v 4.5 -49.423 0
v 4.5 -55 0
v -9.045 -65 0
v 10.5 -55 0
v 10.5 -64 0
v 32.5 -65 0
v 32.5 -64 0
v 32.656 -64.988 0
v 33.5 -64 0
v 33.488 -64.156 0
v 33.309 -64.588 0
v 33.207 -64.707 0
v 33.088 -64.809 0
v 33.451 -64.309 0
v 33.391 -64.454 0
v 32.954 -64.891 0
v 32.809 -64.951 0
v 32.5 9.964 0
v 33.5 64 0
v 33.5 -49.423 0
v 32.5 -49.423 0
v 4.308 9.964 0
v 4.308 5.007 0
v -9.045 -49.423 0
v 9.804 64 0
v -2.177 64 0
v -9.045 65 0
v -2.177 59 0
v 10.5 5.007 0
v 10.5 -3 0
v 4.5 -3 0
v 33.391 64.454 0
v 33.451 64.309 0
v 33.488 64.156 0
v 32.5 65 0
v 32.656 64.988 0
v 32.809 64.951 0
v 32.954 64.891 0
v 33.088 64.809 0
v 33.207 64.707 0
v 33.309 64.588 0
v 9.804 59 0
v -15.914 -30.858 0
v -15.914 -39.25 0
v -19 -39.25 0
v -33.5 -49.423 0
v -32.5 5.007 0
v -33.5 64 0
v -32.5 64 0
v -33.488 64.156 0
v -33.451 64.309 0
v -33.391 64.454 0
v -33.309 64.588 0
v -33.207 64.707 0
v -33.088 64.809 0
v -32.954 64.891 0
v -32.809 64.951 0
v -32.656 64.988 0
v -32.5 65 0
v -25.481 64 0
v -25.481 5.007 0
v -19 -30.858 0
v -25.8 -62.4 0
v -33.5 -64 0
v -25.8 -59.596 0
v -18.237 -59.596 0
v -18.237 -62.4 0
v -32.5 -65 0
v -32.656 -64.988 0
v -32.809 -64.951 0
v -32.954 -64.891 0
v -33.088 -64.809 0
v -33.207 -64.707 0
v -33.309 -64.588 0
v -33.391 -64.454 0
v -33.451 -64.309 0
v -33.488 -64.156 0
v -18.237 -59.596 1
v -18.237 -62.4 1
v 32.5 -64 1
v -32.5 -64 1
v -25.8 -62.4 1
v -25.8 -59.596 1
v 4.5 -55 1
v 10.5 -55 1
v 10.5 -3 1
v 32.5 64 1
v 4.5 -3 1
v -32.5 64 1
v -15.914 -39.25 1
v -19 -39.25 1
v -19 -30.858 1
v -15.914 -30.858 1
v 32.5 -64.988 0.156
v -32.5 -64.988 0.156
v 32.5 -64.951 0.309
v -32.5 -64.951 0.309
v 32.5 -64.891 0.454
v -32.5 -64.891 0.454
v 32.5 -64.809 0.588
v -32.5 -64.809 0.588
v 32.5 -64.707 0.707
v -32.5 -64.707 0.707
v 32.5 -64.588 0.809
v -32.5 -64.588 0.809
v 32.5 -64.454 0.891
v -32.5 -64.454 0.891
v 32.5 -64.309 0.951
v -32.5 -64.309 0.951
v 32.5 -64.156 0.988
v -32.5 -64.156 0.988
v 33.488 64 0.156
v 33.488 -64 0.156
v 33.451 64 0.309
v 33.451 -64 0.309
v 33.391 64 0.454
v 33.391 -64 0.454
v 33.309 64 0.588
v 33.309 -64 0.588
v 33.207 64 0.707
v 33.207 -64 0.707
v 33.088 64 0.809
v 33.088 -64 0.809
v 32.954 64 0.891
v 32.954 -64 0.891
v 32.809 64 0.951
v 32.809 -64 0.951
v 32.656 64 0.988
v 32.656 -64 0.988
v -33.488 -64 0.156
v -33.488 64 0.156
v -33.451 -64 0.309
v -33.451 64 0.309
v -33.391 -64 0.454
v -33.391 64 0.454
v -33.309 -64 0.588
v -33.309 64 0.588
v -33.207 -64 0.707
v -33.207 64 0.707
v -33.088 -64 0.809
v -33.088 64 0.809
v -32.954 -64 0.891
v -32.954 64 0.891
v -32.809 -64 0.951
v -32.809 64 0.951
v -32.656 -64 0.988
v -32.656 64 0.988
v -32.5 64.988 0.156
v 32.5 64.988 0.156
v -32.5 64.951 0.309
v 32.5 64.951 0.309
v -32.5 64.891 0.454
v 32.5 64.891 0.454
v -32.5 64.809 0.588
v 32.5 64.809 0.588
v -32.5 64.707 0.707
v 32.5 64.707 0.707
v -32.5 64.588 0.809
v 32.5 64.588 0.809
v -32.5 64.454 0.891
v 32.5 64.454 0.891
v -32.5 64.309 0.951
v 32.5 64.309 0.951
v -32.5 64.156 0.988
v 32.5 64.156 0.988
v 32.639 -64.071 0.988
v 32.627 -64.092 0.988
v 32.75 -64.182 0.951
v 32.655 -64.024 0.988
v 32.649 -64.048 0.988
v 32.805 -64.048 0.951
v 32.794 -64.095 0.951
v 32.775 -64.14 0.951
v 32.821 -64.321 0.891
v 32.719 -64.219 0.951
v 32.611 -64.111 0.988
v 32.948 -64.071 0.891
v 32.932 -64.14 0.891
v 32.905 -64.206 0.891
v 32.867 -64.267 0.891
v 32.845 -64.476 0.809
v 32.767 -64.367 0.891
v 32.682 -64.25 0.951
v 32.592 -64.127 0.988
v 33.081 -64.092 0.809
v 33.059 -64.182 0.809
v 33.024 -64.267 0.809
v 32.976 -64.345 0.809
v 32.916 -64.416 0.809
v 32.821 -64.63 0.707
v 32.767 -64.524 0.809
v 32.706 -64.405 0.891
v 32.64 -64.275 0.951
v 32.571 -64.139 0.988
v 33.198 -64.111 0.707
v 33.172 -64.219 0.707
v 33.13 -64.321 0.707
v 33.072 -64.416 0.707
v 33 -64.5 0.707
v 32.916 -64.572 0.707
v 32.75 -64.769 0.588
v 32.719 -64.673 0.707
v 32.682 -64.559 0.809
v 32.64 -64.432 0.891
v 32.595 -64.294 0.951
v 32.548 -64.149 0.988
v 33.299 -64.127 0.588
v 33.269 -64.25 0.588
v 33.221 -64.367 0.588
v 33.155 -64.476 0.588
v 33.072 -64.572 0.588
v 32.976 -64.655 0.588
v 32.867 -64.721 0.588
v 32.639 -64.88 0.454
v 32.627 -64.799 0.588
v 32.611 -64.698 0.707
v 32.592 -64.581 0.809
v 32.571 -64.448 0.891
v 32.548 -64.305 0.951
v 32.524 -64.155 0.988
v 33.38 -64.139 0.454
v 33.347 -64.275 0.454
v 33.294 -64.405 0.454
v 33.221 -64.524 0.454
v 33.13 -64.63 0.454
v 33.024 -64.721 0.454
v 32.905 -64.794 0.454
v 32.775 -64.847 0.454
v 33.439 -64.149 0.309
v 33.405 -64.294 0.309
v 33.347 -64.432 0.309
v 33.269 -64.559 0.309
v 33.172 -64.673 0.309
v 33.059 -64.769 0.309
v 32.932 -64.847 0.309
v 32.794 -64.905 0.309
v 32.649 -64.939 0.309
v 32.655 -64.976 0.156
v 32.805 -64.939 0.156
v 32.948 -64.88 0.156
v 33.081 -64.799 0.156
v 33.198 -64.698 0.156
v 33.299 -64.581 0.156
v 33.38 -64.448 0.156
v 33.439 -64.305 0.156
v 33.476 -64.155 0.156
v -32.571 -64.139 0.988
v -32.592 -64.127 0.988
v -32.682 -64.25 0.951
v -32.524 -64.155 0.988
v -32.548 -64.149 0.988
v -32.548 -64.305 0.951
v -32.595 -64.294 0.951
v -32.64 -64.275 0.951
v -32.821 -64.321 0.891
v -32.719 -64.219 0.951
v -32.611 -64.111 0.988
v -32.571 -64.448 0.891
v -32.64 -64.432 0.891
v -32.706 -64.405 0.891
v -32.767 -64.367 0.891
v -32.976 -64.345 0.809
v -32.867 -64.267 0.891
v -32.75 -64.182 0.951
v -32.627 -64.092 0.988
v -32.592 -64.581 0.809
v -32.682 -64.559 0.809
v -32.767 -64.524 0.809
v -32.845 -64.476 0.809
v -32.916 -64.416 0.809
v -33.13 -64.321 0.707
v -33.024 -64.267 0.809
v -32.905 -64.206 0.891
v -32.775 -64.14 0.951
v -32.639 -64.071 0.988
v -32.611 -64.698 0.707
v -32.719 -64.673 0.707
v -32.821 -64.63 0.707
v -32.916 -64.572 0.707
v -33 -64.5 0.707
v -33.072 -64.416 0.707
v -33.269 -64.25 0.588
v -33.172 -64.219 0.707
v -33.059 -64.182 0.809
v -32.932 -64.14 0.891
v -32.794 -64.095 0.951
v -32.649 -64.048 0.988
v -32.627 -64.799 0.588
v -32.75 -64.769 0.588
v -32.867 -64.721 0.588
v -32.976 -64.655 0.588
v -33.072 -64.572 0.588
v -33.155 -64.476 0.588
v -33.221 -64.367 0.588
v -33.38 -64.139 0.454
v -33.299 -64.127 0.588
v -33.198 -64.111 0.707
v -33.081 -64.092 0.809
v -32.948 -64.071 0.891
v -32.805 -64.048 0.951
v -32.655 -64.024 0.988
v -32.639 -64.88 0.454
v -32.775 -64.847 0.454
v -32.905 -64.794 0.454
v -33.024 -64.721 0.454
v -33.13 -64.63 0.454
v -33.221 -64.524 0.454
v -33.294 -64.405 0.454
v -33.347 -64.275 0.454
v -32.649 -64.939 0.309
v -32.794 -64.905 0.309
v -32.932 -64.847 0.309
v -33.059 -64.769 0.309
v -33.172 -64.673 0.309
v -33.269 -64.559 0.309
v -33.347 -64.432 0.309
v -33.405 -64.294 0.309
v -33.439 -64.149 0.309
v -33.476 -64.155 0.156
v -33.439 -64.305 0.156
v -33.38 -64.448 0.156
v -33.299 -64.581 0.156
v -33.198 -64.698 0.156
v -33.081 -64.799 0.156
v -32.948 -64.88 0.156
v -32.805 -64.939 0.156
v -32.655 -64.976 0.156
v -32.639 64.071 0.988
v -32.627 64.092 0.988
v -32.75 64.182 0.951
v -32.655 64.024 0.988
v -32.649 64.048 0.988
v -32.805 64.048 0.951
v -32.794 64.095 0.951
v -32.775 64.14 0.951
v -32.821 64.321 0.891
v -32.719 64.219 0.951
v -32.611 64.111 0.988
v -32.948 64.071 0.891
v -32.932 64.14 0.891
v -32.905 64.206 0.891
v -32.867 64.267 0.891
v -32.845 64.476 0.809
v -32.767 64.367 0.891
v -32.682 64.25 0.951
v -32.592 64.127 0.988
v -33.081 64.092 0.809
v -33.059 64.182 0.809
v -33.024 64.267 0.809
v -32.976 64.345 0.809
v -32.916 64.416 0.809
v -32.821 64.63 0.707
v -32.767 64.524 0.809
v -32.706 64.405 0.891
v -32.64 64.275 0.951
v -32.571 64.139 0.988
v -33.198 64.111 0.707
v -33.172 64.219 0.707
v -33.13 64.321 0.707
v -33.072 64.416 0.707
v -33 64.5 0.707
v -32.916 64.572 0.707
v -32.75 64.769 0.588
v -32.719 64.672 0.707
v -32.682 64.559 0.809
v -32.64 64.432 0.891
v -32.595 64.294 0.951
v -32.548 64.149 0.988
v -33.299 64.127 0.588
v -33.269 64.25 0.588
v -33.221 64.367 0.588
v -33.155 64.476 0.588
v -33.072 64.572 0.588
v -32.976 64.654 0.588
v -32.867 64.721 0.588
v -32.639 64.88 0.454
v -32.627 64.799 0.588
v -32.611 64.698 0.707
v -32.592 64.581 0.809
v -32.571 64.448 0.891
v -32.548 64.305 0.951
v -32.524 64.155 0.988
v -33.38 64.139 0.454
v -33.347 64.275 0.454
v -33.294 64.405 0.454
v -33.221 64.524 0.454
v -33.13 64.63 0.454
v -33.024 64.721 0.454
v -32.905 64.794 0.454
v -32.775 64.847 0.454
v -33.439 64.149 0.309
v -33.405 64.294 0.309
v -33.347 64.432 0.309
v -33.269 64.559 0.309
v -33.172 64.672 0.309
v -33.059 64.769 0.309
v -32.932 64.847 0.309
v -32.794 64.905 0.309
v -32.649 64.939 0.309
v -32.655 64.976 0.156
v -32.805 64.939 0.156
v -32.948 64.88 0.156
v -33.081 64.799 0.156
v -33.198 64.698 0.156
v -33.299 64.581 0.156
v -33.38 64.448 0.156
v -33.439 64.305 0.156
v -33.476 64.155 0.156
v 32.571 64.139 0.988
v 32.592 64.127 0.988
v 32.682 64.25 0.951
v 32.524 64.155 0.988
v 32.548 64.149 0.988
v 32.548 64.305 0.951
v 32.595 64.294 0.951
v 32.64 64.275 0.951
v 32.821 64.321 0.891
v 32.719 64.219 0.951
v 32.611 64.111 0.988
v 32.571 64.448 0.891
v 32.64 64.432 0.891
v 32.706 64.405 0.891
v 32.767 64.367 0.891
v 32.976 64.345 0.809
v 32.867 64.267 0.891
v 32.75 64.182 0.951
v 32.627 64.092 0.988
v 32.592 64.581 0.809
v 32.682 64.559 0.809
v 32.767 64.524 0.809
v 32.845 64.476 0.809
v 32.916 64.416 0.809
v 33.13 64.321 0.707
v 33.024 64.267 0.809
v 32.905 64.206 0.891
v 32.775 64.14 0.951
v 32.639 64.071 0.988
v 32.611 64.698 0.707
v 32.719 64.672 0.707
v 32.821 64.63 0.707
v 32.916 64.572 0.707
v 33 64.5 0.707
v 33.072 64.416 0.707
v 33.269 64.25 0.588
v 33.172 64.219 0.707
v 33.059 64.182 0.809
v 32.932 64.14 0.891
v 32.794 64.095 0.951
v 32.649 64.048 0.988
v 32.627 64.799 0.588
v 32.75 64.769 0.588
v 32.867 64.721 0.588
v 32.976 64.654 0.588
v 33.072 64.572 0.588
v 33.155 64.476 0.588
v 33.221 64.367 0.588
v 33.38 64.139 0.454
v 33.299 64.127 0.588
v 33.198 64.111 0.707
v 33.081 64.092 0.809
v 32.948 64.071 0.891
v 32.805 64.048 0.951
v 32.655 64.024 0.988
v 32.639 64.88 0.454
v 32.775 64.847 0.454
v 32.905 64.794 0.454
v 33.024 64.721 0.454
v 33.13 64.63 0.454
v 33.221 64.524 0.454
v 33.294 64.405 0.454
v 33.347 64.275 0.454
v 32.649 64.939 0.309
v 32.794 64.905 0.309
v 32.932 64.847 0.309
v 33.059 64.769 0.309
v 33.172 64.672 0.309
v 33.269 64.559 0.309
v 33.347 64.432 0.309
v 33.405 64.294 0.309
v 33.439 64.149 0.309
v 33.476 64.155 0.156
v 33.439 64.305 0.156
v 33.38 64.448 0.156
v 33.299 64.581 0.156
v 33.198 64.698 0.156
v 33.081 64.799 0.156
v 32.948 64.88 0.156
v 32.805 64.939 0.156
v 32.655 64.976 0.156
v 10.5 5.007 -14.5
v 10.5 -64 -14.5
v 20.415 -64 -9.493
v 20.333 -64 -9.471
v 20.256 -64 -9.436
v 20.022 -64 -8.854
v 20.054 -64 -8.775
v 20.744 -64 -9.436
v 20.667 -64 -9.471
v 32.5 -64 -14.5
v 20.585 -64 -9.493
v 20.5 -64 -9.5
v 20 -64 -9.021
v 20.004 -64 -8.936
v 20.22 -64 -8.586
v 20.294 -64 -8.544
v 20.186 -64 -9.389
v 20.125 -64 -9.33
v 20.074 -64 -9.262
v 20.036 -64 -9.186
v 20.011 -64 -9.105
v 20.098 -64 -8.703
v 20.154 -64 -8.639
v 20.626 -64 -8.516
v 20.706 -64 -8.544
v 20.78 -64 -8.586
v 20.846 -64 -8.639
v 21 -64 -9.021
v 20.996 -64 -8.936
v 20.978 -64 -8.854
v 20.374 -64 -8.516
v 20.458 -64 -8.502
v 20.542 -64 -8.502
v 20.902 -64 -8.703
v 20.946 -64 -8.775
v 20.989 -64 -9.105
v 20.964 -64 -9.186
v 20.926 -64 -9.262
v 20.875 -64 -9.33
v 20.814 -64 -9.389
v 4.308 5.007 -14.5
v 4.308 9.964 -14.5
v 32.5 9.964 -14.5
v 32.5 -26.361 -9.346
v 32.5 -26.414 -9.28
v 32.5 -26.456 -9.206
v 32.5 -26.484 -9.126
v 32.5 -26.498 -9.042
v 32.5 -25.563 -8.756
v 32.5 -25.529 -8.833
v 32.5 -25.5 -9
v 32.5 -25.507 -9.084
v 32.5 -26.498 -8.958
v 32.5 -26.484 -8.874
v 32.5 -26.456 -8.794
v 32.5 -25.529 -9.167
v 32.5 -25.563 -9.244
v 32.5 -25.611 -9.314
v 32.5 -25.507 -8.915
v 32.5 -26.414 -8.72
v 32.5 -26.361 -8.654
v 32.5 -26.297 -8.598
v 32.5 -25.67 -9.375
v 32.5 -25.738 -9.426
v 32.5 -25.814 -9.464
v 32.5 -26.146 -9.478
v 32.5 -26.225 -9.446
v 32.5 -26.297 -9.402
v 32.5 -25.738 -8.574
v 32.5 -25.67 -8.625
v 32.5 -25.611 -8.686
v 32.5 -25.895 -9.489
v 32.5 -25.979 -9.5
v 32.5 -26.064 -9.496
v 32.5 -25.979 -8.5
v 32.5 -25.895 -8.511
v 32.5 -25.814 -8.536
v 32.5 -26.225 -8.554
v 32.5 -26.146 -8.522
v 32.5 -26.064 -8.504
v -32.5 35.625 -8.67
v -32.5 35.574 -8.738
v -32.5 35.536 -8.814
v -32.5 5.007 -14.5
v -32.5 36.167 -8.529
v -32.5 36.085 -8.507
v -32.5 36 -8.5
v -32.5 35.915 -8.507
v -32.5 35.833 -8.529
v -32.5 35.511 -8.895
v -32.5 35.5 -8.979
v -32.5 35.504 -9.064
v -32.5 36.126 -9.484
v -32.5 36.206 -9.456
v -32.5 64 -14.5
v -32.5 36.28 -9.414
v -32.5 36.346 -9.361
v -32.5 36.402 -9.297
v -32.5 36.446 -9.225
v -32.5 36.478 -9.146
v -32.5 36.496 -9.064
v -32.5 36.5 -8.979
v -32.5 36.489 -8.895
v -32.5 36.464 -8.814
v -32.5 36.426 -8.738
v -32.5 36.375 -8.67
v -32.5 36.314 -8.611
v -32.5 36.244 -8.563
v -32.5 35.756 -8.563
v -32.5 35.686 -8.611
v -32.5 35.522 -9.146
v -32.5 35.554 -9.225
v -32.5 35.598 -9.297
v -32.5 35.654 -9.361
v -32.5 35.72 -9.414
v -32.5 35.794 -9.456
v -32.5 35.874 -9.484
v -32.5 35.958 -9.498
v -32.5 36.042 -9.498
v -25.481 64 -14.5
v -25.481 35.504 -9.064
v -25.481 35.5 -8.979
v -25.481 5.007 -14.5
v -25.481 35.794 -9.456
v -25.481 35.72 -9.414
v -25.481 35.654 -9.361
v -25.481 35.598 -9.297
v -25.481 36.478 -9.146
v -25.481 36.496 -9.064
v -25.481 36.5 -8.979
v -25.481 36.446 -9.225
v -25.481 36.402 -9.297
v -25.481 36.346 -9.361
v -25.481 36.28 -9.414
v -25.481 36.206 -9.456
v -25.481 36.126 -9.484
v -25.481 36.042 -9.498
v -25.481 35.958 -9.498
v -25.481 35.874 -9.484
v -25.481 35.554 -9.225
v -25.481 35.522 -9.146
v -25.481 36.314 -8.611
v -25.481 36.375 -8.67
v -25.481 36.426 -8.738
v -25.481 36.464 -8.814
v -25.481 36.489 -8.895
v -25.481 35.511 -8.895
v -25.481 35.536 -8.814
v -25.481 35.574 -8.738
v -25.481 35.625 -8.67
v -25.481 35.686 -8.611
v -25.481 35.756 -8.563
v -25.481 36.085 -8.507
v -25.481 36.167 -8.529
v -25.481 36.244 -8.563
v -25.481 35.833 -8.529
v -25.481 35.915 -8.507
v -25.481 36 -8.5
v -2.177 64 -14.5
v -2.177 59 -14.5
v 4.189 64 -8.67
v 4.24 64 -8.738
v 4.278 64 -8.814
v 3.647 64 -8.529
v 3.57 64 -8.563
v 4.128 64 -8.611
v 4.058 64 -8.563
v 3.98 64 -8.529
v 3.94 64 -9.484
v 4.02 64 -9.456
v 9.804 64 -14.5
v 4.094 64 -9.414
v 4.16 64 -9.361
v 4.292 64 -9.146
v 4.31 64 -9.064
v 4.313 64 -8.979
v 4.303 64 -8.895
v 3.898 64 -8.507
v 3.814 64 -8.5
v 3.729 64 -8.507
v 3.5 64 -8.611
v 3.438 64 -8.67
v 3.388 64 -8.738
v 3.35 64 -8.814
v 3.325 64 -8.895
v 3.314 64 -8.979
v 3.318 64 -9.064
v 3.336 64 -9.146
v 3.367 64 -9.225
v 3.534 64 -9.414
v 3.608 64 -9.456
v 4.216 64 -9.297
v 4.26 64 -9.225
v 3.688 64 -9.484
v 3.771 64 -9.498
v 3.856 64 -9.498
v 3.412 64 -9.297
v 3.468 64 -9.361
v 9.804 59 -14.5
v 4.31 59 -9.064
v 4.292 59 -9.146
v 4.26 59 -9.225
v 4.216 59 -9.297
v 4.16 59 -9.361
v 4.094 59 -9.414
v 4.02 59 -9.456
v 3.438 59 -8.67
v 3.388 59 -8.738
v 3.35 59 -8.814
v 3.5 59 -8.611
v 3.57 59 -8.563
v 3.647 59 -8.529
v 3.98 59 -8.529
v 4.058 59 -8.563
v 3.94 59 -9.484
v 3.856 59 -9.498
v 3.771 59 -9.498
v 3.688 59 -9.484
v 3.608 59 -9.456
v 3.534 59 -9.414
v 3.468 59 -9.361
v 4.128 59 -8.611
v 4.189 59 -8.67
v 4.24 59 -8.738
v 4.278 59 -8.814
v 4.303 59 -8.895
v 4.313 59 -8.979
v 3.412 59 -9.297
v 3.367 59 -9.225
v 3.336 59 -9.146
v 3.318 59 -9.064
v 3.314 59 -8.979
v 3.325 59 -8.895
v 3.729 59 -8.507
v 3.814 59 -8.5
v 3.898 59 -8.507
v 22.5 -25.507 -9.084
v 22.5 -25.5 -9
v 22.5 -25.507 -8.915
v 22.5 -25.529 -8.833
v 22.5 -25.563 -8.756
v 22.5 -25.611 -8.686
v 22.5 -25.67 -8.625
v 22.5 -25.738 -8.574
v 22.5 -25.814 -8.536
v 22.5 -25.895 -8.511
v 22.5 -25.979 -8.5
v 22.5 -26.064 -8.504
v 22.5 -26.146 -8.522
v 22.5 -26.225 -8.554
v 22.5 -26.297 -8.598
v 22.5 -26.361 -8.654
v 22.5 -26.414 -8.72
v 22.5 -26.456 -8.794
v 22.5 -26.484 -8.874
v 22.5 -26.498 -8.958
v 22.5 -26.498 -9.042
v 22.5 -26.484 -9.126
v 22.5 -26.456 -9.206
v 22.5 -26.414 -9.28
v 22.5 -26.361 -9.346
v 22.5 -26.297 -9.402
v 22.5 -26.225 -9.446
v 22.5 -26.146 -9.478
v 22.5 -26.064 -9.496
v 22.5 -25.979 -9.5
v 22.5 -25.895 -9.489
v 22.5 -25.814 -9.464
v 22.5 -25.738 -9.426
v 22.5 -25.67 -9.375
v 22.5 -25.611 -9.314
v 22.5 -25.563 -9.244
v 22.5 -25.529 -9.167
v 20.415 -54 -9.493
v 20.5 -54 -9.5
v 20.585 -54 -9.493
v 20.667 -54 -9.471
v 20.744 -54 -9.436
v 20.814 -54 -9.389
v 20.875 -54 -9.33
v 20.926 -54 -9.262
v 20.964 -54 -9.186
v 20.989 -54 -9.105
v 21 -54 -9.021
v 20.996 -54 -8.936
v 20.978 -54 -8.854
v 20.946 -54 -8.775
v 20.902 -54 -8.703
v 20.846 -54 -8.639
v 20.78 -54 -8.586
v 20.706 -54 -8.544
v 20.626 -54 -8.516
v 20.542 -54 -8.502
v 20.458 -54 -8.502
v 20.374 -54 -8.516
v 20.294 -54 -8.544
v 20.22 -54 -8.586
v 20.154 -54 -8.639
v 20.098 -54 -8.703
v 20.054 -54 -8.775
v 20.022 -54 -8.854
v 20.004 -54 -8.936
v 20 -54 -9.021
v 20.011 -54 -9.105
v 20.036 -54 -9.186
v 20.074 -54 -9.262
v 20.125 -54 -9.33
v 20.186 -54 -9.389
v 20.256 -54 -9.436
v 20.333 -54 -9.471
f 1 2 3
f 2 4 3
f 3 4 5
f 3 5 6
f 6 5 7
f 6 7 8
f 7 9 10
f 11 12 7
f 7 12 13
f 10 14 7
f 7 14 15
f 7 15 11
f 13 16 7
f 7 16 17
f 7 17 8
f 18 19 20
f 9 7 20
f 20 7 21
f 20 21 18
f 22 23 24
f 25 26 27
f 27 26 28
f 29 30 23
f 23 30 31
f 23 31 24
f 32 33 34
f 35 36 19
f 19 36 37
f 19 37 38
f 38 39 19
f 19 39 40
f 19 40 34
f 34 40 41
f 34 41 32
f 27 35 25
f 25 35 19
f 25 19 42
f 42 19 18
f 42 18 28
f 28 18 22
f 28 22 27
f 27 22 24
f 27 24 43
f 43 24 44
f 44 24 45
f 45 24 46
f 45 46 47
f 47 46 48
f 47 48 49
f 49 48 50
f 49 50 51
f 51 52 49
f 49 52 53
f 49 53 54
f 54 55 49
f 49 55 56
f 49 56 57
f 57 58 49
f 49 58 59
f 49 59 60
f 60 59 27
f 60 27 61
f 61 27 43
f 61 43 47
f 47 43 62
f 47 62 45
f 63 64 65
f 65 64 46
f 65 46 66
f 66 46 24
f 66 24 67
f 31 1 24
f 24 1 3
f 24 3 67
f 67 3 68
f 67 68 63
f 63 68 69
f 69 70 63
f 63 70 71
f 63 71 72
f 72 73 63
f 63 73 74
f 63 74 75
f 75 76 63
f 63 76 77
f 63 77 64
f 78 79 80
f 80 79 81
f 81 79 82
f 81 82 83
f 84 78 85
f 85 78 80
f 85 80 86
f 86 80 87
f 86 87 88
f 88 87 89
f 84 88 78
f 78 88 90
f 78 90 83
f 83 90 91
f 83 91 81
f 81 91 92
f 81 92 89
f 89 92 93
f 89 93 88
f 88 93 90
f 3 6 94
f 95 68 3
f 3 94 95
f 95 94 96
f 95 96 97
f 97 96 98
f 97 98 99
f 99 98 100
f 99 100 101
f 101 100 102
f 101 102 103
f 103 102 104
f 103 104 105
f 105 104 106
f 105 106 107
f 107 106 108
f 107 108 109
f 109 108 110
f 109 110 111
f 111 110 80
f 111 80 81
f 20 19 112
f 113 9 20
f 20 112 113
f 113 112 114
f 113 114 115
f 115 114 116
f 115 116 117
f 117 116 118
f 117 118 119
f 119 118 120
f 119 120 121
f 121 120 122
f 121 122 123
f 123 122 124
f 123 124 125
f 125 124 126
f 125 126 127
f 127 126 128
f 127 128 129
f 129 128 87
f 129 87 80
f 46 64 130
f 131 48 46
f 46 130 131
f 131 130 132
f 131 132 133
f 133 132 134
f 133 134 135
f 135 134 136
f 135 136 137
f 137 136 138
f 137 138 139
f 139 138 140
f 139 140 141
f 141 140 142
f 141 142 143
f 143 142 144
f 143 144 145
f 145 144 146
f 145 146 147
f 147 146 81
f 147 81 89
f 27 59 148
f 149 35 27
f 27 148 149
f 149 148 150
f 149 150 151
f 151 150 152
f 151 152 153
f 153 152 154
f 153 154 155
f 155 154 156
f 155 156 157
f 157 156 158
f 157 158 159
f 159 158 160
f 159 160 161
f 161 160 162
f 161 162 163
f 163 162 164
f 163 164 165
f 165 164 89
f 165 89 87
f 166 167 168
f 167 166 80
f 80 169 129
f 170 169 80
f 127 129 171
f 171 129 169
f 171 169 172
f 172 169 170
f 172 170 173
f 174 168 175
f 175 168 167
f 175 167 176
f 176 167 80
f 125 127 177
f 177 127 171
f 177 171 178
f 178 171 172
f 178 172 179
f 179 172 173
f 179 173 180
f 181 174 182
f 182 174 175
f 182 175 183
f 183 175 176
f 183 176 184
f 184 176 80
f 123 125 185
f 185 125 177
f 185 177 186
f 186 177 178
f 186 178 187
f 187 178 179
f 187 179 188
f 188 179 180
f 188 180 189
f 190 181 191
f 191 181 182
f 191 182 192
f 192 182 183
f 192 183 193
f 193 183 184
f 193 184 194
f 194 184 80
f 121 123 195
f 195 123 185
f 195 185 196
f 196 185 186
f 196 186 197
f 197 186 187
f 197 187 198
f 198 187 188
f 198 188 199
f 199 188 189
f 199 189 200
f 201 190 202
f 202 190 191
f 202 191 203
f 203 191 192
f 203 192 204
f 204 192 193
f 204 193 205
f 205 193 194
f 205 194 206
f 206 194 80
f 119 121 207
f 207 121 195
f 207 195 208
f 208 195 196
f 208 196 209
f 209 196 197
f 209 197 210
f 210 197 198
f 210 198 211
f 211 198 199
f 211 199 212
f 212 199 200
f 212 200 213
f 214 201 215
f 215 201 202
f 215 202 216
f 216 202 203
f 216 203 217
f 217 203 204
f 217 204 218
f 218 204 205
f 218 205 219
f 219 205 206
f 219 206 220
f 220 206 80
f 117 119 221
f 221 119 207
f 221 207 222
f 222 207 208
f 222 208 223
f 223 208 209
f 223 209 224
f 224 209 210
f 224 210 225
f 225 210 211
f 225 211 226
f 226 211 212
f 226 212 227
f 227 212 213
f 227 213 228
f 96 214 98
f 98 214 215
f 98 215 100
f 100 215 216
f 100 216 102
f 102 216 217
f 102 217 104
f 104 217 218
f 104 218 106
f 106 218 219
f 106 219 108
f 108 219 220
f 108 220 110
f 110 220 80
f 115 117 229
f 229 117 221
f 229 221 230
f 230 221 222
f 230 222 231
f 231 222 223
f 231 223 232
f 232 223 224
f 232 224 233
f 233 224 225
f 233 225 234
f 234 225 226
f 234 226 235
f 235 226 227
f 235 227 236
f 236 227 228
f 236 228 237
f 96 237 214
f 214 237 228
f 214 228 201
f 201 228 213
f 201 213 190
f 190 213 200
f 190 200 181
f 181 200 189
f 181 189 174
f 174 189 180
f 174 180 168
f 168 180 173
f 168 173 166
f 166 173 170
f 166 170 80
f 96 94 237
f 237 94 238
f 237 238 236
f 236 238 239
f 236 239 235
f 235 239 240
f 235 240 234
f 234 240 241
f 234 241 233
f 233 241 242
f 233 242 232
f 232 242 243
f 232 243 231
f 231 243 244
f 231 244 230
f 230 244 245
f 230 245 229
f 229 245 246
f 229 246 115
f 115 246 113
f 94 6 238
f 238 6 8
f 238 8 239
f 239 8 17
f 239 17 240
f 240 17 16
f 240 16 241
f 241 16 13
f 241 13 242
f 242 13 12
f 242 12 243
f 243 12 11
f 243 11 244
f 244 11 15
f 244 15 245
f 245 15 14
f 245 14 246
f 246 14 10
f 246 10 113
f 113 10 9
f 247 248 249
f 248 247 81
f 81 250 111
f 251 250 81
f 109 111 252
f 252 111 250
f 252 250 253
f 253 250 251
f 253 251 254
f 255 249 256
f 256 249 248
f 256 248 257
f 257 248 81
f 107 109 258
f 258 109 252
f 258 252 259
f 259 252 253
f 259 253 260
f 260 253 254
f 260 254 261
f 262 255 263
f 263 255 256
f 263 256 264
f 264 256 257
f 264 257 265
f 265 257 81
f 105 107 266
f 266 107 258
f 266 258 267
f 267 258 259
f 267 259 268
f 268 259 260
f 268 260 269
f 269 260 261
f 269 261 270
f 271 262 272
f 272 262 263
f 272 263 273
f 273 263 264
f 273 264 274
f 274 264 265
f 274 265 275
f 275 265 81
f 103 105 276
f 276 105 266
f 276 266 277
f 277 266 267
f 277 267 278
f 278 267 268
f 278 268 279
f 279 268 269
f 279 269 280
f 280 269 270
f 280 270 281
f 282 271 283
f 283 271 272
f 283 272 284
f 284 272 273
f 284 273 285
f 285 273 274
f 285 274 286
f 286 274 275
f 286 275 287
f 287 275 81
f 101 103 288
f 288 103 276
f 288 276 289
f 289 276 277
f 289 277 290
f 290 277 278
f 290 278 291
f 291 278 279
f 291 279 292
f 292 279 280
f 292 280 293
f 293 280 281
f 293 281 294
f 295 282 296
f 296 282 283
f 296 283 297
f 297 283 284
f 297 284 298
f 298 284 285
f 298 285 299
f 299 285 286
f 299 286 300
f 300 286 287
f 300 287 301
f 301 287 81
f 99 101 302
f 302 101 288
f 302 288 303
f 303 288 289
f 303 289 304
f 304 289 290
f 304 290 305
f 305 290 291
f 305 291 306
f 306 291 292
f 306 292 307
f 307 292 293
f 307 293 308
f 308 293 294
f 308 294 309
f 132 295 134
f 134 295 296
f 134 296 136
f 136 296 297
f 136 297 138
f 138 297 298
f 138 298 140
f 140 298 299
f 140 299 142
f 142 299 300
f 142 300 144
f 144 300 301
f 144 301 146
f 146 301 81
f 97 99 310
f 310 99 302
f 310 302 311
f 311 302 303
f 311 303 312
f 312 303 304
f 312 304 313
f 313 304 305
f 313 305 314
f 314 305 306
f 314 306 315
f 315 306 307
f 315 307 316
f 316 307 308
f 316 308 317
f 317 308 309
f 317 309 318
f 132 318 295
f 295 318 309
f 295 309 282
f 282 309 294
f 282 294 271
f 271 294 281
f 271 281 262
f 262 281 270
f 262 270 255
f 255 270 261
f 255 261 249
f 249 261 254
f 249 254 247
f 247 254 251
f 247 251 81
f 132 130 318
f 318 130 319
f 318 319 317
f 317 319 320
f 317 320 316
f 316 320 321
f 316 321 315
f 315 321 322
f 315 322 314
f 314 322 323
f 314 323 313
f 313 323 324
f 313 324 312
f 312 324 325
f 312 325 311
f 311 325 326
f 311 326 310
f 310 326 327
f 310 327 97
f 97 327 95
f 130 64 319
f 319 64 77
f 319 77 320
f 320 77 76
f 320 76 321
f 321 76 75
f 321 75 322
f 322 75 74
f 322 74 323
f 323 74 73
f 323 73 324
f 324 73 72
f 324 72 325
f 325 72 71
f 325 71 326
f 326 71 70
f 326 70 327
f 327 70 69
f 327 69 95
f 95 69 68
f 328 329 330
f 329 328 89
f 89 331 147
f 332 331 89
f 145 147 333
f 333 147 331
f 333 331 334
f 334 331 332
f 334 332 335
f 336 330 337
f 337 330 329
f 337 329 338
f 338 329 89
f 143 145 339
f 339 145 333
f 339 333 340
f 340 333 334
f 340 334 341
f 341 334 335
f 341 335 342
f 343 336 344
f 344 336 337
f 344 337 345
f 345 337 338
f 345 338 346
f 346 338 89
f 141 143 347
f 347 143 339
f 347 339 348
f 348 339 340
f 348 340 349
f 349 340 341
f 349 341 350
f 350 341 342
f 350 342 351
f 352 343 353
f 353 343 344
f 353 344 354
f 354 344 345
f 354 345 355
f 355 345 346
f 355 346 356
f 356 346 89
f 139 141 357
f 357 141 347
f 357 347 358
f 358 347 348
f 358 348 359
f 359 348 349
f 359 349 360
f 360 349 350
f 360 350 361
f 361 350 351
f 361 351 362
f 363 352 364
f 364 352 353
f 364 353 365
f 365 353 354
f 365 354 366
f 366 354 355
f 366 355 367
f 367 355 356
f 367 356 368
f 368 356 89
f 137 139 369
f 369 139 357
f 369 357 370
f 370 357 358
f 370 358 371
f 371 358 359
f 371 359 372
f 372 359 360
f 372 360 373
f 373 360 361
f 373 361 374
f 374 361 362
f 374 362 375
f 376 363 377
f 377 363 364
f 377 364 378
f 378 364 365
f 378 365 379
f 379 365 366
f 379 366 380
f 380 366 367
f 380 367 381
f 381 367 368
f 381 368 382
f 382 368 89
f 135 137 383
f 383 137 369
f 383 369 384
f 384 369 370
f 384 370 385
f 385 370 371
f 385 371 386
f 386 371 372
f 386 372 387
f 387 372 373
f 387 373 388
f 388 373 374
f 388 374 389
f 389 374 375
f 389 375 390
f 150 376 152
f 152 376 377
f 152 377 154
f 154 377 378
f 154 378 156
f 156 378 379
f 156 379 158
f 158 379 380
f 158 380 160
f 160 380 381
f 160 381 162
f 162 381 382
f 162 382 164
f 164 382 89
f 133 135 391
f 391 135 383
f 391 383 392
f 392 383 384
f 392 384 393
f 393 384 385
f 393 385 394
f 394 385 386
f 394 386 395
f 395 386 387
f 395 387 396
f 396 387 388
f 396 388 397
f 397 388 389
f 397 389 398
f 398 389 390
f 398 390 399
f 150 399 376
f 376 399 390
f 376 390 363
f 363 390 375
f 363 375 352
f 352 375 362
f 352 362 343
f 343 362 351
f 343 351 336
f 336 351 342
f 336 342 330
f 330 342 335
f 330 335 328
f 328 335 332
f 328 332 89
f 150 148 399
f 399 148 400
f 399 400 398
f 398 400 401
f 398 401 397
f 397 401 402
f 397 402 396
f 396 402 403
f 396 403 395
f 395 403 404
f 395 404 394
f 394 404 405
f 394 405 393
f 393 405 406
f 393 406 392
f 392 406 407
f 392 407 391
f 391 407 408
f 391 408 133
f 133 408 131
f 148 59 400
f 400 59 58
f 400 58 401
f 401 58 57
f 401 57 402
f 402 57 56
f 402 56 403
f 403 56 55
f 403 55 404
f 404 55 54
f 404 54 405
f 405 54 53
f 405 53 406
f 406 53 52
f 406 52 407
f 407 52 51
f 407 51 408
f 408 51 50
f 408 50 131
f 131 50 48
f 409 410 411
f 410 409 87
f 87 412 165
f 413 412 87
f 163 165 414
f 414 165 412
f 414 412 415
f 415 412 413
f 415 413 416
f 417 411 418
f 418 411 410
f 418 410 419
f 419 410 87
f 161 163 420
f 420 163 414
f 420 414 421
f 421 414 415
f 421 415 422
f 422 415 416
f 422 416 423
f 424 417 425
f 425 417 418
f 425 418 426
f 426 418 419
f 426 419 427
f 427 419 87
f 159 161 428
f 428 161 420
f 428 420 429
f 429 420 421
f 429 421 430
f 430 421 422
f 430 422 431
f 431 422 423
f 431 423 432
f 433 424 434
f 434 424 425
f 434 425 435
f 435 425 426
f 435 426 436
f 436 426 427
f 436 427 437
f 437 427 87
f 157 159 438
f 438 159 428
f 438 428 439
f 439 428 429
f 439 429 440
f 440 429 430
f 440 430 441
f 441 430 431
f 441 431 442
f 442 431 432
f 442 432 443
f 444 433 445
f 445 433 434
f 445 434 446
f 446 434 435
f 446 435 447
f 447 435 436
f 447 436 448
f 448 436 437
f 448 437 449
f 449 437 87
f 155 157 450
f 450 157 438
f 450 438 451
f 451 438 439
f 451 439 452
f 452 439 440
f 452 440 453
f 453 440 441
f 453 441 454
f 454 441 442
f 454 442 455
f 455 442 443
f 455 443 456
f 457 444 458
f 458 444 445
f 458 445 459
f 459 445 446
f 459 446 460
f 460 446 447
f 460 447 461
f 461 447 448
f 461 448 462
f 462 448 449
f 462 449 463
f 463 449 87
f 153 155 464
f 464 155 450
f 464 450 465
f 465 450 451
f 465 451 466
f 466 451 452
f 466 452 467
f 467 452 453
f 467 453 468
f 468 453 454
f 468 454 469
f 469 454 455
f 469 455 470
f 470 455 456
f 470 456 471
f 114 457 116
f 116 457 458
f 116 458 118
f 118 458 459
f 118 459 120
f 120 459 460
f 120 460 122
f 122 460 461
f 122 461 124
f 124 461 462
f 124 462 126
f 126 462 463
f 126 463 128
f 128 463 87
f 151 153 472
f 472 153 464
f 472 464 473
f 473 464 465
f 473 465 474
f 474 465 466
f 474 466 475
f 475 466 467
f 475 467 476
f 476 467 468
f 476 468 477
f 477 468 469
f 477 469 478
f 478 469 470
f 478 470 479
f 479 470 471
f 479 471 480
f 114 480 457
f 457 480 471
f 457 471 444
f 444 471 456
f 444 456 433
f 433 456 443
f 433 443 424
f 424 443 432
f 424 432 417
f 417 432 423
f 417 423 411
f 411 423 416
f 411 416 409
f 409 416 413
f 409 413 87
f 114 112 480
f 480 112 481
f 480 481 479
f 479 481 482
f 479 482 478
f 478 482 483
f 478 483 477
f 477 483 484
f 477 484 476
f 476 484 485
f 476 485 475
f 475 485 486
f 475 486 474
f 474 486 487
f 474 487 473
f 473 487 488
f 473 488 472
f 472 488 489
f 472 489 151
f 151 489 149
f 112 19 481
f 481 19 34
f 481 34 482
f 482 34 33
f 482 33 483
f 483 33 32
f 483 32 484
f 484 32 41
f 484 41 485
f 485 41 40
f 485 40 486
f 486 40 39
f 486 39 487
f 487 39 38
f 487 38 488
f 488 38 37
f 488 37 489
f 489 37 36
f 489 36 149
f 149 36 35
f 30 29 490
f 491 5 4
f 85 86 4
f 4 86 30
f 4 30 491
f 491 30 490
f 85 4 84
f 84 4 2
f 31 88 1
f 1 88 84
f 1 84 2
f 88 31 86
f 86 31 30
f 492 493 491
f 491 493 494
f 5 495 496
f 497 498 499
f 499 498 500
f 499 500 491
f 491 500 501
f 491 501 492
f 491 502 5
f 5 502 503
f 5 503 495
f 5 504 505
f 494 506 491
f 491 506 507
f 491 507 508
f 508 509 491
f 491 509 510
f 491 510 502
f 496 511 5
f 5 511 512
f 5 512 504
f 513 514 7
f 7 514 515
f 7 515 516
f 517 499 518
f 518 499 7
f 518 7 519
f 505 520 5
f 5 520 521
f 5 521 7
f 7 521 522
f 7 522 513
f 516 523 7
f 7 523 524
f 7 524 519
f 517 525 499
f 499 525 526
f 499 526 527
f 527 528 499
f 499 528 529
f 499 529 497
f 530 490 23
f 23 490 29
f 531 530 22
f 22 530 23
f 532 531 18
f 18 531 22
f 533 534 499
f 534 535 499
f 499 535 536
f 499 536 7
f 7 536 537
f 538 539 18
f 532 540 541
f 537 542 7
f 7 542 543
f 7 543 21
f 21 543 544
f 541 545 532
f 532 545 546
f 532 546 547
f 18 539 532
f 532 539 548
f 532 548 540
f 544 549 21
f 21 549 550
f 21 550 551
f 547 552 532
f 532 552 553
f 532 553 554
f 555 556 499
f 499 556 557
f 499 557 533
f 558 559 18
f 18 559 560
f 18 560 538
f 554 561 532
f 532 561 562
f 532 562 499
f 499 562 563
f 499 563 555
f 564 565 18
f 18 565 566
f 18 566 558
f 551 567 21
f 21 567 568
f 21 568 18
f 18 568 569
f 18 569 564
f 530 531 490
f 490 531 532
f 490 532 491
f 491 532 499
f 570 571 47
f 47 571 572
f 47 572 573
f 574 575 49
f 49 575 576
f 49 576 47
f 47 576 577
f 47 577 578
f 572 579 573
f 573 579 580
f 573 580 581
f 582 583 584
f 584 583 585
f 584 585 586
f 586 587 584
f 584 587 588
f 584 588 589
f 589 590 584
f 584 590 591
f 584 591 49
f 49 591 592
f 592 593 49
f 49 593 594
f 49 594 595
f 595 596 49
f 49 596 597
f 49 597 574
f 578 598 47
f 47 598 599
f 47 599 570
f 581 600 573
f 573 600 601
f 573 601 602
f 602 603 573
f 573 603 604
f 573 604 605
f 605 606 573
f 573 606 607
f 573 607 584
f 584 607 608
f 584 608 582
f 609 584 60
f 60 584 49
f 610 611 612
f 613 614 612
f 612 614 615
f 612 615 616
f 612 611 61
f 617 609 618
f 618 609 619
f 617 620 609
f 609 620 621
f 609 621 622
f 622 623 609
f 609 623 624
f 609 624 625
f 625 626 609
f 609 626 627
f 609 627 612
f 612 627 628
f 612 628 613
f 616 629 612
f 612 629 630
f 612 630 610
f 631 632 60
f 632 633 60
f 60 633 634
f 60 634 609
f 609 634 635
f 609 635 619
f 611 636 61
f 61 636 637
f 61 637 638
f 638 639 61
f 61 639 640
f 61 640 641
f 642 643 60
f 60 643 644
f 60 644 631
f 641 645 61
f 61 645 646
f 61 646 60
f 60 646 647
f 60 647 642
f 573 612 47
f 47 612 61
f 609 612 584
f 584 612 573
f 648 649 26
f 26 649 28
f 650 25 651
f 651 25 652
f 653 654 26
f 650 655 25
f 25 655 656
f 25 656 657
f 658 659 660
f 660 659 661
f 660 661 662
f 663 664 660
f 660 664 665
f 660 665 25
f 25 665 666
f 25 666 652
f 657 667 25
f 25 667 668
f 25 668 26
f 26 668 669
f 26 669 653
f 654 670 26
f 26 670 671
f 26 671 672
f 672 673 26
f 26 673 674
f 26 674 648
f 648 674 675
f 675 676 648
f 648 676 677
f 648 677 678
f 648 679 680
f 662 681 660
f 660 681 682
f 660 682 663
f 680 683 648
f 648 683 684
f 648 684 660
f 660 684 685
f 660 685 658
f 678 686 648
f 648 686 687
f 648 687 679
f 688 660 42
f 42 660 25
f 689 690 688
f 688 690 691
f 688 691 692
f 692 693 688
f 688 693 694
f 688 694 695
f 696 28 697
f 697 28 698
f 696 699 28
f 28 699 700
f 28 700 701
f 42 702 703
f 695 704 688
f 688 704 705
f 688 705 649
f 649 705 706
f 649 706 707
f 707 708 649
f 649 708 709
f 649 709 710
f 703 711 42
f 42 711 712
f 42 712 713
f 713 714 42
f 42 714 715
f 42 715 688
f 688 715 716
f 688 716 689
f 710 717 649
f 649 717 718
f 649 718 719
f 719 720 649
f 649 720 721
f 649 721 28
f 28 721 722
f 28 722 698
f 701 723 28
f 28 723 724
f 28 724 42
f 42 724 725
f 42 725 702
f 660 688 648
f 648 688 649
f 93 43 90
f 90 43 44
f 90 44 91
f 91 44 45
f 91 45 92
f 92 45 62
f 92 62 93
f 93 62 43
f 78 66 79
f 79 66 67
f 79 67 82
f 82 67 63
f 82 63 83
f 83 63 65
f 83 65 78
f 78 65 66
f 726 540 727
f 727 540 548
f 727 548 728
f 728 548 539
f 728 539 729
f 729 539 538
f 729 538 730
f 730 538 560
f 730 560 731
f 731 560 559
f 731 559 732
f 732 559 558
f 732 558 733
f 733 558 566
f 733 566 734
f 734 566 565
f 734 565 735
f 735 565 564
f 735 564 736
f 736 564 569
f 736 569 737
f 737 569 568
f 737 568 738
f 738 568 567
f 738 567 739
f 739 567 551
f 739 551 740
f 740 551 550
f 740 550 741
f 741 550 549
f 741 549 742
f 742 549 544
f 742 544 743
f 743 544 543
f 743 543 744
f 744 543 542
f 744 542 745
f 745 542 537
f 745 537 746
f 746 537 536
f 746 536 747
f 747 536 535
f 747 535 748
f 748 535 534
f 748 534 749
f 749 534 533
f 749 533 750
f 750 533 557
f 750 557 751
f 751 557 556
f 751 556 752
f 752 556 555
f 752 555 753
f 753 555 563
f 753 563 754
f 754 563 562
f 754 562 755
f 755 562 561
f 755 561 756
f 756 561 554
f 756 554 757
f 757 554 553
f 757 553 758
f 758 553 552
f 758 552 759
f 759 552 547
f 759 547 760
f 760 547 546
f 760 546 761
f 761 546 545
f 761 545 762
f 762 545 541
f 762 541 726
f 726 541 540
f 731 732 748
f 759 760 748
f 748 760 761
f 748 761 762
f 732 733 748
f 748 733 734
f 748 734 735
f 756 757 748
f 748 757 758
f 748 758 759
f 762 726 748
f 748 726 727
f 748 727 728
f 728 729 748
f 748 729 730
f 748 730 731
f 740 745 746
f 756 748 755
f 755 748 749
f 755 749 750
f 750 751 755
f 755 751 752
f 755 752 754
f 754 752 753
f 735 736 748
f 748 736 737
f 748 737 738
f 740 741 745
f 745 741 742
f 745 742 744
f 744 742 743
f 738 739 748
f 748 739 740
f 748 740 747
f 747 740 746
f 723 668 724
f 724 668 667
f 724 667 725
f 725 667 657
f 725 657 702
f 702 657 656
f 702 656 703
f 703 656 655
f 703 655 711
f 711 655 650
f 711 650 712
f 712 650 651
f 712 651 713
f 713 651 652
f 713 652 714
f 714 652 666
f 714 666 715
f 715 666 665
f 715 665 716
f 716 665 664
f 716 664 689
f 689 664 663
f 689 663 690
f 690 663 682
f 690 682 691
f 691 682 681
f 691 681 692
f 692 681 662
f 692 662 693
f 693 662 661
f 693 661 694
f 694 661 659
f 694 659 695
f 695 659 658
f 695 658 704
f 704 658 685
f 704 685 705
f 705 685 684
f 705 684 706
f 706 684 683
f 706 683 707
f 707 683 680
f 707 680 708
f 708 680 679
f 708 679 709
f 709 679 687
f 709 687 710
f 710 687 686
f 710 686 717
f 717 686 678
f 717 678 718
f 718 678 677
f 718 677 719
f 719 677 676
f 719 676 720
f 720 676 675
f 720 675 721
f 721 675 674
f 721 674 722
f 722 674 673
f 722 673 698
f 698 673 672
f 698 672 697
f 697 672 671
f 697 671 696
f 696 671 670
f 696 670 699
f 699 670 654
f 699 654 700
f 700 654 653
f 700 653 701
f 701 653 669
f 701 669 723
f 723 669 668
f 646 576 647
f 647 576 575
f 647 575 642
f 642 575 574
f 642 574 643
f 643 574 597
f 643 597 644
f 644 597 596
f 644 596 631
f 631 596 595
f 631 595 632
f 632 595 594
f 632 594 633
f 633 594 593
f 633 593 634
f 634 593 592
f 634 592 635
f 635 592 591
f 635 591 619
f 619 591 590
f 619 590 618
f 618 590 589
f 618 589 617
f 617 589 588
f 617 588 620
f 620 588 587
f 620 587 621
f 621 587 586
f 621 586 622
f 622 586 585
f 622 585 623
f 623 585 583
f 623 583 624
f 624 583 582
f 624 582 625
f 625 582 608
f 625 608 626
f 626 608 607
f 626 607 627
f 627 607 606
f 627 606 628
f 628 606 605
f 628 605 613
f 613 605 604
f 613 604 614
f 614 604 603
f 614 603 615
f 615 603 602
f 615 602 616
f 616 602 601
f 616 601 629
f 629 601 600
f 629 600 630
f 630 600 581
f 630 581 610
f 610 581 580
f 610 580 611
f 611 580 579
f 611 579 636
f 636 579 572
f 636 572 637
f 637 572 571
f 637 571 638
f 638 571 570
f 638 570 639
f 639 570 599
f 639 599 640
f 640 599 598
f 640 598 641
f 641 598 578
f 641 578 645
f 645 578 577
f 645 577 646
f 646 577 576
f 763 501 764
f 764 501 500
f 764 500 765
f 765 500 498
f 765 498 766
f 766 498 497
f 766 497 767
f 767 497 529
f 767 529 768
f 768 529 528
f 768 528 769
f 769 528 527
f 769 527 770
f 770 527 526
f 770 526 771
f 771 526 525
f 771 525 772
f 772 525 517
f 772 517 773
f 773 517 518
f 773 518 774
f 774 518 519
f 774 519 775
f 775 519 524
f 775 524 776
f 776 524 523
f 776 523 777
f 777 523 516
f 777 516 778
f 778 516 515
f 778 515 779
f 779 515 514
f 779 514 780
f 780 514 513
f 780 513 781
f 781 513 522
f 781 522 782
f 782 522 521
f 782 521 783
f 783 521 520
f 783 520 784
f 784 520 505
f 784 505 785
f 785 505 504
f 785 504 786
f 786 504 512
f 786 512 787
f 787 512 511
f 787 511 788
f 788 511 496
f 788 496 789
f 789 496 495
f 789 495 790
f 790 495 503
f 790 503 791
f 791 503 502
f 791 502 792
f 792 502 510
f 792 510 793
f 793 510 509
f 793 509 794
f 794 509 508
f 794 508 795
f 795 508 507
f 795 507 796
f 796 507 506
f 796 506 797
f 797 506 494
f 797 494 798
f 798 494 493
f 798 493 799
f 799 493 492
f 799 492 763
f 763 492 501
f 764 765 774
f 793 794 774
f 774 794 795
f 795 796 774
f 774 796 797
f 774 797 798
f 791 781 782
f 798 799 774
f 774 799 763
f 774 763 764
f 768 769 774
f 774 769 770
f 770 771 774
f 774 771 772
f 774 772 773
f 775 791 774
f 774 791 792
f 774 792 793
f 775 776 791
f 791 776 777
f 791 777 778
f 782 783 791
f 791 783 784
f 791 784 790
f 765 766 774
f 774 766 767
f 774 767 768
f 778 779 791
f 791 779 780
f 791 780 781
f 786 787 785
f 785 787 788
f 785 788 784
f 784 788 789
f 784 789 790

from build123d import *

# Parameters (mm, degrees)
SCHIZZO1_W                   = 67
SCHIZZO1_H                   = 130
ESTRUSIONE_ESTRUSIONE1_DEPTH = 1
RACCORDO1_R                  = 1
RACCORDO2_R                  = 1
TAGLIO_ESTRUSIONE1_REACH     = 75.132
SCHIZZO2_W                   = 6
SCHIZZO2_H                   = 52
SCHIZZO3_W                   = 7.019243903
SCHIZZO3_H                   = 58.993368718
SCHIZZO3_W_2                 = 11.981035511
SCHIZZO3_H_2                 = 5
ESTRUSIONE_ESTRUSIONE2_DEPTH = 14.5
TAGLIO_ESTRUSIONE3_REACH     = 76.75
SCHIZZO8_W                   = 3.086111391
SCHIZZO8_H                   = 8.391810393
TAGLIO_ESTRUSIONE4_REACH     = 76.75
SCHIZZO10_W                  = 7.563253313
SCHIZZO10_H                  = 2.803619763
SCHIZZO11_R                  = 0.5
TAGLIO_ESTRUSIONE5_DEPTH     = 10
SCHIZZO12_R                  = 0.5
TAGLIO_ESTRUSIONE6_DEPTH     = 10
SCHIZZO13_R                  = 0.5
TAGLIO_ESTRUSIONE7_DEPTH     = 10
SCHIZZO14_R                  = 0.5
TAGLIO_ESTRUSIONE8_DEPTH     = 10


# Some blends are built 0.0001 mm under size
with BuildPart() as part:
    # Schizzo1 → Estrusione-Estrusione1 (new body)
    with BuildSketch(Plane.XY):
        Rectangle(SCHIZZO1_W, SCHIZZO1_H)
    extrude(amount=ESTRUSIONE_ESTRUSIONE1_DEPTH)

    # Raccordo1
    raccordo1_edges = [part.edges().sort_by_distance(p)[0] for p in [
        (0, 65, 1),
        (33.5, 0, 1),
        (0, -65, 1),
        (-33.5, 0, 1),
    ]]
    fillet(raccordo1_edges, radius=RACCORDO1_R - 0.0001)  # a hair under: the kernel refuses the full size

    # Raccordo2
    # the kernel refuses this fillet: 1 mm, written as the material it takes off along each edge
    with BuildSketch(Plane(origin=(32.5, -64, 1), x_dir=(0, -1, 0), z_dir=(-1, 0, 0))) as raccordo2_piece_1:
        with BuildLine():
            CenterArc((0.0001, -0.9999), 0.9999, 0, 90)
            Line((1, -0.9999), (1, 0))
            Line((1, 0), (0.0001, 0))
        make_face()
    revolve(axis=Axis((32.5, -64, 1), (0, 0, 1)), revolution_arc=90, mode=Mode.SUBTRACT)
    with BuildSketch(Plane(origin=(-32.5, -64, 1), x_dir=(-1, 0, 0), z_dir=(0, 1, 0))) as raccordo2_piece_2:
        with BuildLine():
            CenterArc((0.0001, -0.9999), 0.9999, 0, 90)
            Line((1, -0.9999), (1, 0))
            Line((1, 0), (0.0001, 0))
        make_face()
    revolve(axis=Axis((-32.5, -64, 1), (0, 0, 1)), revolution_arc=90, mode=Mode.SUBTRACT)
    with BuildSketch(Plane(origin=(32.5, 64, 1), x_dir=(1, 0, 0), z_dir=(0, -1, 0))) as raccordo2_piece_3:
        with BuildLine():
            CenterArc((0.0001, -0.9999), 0.9999, 0, 90)
            Line((1, -0.9999), (1, 0))
            Line((1, 0), (0.0001, 0))
        make_face()
    revolve(axis=Axis((32.5, 64, 1), (0, 0, 1)), revolution_arc=90, mode=Mode.SUBTRACT)
    with BuildSketch(Plane(origin=(-32.5, 64, 1), x_dir=(0, 1, 0), z_dir=(1, 0, 0))) as raccordo2_piece_4:
        with BuildLine():
            CenterArc((0.0001, -0.9999), 0.9999, 0, 90)
            Line((1, -0.9999), (1, 0))
            Line((1, 0), (0.0001, 0))
        make_face()
    revolve(axis=Axis((-32.5, 64, 1), (0, 0, 1)), revolution_arc=90, mode=Mode.SUBTRACT)
    with BuildSketch(Plane(origin=(-33.5, 65, -2.5), x_dir=(1, 0, 0), z_dir=(0, 0, 1)), Plane(origin=(-33.5, -65, -2.5), x_dir=(0, 1, 0), z_dir=(0, 0, 1))) as raccordo2_piece_5:
        with BuildLine():
            CenterArc((RACCORDO2_R, -RACCORDO2_R), RACCORDO2_R, 90, 90)
            Line((0, -RACCORDO2_R), (0, 0))
            Line((0, 0), (RACCORDO2_R, 0))
        make_face()
    extrude(amount=3.5, mode=Mode.SUBTRACT)
    with BuildSketch(Plane(origin=(33.5, 65, -2.5), x_dir=(-1, 0, 0), z_dir=(0, 0, 1)), Plane(origin=(33.5, -65, -2.5), x_dir=(0, 1, 0), z_dir=(0, 0, 1))) as raccordo2_piece_6:
        with BuildLine():
            CenterArc((RACCORDO2_R, RACCORDO2_R), RACCORDO2_R, 180, 90)
            Line((0, RACCORDO2_R), (0, 0))
            Line((0, 0), (RACCORDO2_R, 0))
        make_face()
    extrude(amount=3.5, mode=Mode.SUBTRACT)

    # Schizzo2 → Taglio-Estrusione1 (cut, up to next)
    with BuildSketch(Plane.XY.offset(1), mode=Mode.PRIVATE) as taglio_estrusione1_sk1:
        with Locations((7.5, -29)):
            Rectangle(SCHIZZO2_W, SCHIZZO2_H)
    taglio_estrusione1_tool1 = extrude(taglio_estrusione1_sk1.sketch, amount=-TAGLIO_ESTRUSIONE1_REACH, mode=Mode.PRIVATE) & part.part
    add(taglio_estrusione1_tool1.solids().sort_by_distance((7.5, -29, 1))[0], mode=Mode.SUBTRACT)

    # Schizzo3 → Estrusione-Estrusione2 (add)
    with BuildSketch(Plane(origin=(0, 0, 0), x_dir=(-1, 0, 0), z_dir=(0, 0, -1))):
        Polygon((-32.5, -64), (-10.5, -64), (-10.5, 5.006631282), (-4.308376316, 5.006631282), (-4.308376316, 9.963903227), (-32.5, 9.963903227), (-32.5, 5), align=None)
        with Locations((28.990378048, 34.503315641)):
            Rectangle(SCHIZZO3_W, SCHIZZO3_H)
        with Locations((-3.813832367, 61.5)):
            Rectangle(SCHIZZO3_W_2, SCHIZZO3_H_2)
    extrude(amount=ESTRUSIONE_ESTRUSIONE2_DEPTH)

    # Schizzo8 → Taglio-Estrusione3 (cut, up to next)
    with BuildSketch(Plane.XY.offset(1), mode=Mode.PRIVATE) as taglio_estrusione3_sk1:
        with Locations((-17.456944304, -35.054094803)):
            Rectangle(SCHIZZO8_W, SCHIZZO8_H)
    taglio_estrusione3_tool1 = extrude(taglio_estrusione3_sk1.sketch, amount=-TAGLIO_ESTRUSIONE3_REACH, mode=Mode.PRIVATE) & part.part
    add(taglio_estrusione3_tool1.solids().sort_by_distance((-17.456944, -35.054095, 1))[0], mode=Mode.SUBTRACT)

    # Schizzo10 → Taglio-Estrusione4 (cut, up to next)
    with BuildSketch(Plane.XY.offset(1), mode=Mode.PRIVATE) as taglio_estrusione4_sk1:
        with Locations((-22.018373344, -60.998190119)):
            Rectangle(SCHIZZO10_W, SCHIZZO10_H)
    taglio_estrusione4_tool1 = extrude(taglio_estrusione4_sk1.sketch, amount=-TAGLIO_ESTRUSIONE4_REACH, mode=Mode.PRIVATE) & part.part
    add(taglio_estrusione4_tool1.solids().sort_by_distance((-22.018373, -60.99819, 1))[0], mode=Mode.SUBTRACT)

    # Schizzo11 → Taglio-Estrusione5 (cut)
    with BuildSketch(Plane(origin=(32.5, 0, 0), x_dir=(0, 0, -1), z_dir=(1, 0, 0))):
        with Locations(Location((9, -26, 0), (0, 0, 90))):
            Circle(SCHIZZO11_R)
    extrude(amount=-TAGLIO_ESTRUSIONE5_DEPTH, mode=Mode.SUBTRACT)

    # Schizzo12 → Taglio-Estrusione6 (cut)
    with BuildSketch(Plane(origin=(0, 64, 0), x_dir=(1, 0, 0), z_dir=(0, 1, 0))):
        with Locations(Location((3.813832367, 9, 0), (0, 0, 270))):
            Circle(SCHIZZO12_R)
    extrude(amount=-TAGLIO_ESTRUSIONE6_DEPTH, mode=Mode.SUBTRACT)

    # Schizzo13 → Taglio-Estrusione7 (cut)
    with BuildSketch(Plane.ZY.offset(32.5)):
        with Locations((-9, 36)):
            Circle(SCHIZZO13_R)
    extrude(amount=-TAGLIO_ESTRUSIONE7_DEPTH, mode=Mode.SUBTRACT)

    # Schizzo14 → Taglio-Estrusione8 (cut)
    with BuildSketch(Plane.XZ.offset(64)):
        with Locations(Location((20.5, -9, 0), (0, 0, 270))):
            Circle(SCHIZZO14_R)
    extrude(amount=-TAGLIO_ESTRUSIONE8_DEPTH, mode=Mode.SUBTRACT)


solid = part.part
